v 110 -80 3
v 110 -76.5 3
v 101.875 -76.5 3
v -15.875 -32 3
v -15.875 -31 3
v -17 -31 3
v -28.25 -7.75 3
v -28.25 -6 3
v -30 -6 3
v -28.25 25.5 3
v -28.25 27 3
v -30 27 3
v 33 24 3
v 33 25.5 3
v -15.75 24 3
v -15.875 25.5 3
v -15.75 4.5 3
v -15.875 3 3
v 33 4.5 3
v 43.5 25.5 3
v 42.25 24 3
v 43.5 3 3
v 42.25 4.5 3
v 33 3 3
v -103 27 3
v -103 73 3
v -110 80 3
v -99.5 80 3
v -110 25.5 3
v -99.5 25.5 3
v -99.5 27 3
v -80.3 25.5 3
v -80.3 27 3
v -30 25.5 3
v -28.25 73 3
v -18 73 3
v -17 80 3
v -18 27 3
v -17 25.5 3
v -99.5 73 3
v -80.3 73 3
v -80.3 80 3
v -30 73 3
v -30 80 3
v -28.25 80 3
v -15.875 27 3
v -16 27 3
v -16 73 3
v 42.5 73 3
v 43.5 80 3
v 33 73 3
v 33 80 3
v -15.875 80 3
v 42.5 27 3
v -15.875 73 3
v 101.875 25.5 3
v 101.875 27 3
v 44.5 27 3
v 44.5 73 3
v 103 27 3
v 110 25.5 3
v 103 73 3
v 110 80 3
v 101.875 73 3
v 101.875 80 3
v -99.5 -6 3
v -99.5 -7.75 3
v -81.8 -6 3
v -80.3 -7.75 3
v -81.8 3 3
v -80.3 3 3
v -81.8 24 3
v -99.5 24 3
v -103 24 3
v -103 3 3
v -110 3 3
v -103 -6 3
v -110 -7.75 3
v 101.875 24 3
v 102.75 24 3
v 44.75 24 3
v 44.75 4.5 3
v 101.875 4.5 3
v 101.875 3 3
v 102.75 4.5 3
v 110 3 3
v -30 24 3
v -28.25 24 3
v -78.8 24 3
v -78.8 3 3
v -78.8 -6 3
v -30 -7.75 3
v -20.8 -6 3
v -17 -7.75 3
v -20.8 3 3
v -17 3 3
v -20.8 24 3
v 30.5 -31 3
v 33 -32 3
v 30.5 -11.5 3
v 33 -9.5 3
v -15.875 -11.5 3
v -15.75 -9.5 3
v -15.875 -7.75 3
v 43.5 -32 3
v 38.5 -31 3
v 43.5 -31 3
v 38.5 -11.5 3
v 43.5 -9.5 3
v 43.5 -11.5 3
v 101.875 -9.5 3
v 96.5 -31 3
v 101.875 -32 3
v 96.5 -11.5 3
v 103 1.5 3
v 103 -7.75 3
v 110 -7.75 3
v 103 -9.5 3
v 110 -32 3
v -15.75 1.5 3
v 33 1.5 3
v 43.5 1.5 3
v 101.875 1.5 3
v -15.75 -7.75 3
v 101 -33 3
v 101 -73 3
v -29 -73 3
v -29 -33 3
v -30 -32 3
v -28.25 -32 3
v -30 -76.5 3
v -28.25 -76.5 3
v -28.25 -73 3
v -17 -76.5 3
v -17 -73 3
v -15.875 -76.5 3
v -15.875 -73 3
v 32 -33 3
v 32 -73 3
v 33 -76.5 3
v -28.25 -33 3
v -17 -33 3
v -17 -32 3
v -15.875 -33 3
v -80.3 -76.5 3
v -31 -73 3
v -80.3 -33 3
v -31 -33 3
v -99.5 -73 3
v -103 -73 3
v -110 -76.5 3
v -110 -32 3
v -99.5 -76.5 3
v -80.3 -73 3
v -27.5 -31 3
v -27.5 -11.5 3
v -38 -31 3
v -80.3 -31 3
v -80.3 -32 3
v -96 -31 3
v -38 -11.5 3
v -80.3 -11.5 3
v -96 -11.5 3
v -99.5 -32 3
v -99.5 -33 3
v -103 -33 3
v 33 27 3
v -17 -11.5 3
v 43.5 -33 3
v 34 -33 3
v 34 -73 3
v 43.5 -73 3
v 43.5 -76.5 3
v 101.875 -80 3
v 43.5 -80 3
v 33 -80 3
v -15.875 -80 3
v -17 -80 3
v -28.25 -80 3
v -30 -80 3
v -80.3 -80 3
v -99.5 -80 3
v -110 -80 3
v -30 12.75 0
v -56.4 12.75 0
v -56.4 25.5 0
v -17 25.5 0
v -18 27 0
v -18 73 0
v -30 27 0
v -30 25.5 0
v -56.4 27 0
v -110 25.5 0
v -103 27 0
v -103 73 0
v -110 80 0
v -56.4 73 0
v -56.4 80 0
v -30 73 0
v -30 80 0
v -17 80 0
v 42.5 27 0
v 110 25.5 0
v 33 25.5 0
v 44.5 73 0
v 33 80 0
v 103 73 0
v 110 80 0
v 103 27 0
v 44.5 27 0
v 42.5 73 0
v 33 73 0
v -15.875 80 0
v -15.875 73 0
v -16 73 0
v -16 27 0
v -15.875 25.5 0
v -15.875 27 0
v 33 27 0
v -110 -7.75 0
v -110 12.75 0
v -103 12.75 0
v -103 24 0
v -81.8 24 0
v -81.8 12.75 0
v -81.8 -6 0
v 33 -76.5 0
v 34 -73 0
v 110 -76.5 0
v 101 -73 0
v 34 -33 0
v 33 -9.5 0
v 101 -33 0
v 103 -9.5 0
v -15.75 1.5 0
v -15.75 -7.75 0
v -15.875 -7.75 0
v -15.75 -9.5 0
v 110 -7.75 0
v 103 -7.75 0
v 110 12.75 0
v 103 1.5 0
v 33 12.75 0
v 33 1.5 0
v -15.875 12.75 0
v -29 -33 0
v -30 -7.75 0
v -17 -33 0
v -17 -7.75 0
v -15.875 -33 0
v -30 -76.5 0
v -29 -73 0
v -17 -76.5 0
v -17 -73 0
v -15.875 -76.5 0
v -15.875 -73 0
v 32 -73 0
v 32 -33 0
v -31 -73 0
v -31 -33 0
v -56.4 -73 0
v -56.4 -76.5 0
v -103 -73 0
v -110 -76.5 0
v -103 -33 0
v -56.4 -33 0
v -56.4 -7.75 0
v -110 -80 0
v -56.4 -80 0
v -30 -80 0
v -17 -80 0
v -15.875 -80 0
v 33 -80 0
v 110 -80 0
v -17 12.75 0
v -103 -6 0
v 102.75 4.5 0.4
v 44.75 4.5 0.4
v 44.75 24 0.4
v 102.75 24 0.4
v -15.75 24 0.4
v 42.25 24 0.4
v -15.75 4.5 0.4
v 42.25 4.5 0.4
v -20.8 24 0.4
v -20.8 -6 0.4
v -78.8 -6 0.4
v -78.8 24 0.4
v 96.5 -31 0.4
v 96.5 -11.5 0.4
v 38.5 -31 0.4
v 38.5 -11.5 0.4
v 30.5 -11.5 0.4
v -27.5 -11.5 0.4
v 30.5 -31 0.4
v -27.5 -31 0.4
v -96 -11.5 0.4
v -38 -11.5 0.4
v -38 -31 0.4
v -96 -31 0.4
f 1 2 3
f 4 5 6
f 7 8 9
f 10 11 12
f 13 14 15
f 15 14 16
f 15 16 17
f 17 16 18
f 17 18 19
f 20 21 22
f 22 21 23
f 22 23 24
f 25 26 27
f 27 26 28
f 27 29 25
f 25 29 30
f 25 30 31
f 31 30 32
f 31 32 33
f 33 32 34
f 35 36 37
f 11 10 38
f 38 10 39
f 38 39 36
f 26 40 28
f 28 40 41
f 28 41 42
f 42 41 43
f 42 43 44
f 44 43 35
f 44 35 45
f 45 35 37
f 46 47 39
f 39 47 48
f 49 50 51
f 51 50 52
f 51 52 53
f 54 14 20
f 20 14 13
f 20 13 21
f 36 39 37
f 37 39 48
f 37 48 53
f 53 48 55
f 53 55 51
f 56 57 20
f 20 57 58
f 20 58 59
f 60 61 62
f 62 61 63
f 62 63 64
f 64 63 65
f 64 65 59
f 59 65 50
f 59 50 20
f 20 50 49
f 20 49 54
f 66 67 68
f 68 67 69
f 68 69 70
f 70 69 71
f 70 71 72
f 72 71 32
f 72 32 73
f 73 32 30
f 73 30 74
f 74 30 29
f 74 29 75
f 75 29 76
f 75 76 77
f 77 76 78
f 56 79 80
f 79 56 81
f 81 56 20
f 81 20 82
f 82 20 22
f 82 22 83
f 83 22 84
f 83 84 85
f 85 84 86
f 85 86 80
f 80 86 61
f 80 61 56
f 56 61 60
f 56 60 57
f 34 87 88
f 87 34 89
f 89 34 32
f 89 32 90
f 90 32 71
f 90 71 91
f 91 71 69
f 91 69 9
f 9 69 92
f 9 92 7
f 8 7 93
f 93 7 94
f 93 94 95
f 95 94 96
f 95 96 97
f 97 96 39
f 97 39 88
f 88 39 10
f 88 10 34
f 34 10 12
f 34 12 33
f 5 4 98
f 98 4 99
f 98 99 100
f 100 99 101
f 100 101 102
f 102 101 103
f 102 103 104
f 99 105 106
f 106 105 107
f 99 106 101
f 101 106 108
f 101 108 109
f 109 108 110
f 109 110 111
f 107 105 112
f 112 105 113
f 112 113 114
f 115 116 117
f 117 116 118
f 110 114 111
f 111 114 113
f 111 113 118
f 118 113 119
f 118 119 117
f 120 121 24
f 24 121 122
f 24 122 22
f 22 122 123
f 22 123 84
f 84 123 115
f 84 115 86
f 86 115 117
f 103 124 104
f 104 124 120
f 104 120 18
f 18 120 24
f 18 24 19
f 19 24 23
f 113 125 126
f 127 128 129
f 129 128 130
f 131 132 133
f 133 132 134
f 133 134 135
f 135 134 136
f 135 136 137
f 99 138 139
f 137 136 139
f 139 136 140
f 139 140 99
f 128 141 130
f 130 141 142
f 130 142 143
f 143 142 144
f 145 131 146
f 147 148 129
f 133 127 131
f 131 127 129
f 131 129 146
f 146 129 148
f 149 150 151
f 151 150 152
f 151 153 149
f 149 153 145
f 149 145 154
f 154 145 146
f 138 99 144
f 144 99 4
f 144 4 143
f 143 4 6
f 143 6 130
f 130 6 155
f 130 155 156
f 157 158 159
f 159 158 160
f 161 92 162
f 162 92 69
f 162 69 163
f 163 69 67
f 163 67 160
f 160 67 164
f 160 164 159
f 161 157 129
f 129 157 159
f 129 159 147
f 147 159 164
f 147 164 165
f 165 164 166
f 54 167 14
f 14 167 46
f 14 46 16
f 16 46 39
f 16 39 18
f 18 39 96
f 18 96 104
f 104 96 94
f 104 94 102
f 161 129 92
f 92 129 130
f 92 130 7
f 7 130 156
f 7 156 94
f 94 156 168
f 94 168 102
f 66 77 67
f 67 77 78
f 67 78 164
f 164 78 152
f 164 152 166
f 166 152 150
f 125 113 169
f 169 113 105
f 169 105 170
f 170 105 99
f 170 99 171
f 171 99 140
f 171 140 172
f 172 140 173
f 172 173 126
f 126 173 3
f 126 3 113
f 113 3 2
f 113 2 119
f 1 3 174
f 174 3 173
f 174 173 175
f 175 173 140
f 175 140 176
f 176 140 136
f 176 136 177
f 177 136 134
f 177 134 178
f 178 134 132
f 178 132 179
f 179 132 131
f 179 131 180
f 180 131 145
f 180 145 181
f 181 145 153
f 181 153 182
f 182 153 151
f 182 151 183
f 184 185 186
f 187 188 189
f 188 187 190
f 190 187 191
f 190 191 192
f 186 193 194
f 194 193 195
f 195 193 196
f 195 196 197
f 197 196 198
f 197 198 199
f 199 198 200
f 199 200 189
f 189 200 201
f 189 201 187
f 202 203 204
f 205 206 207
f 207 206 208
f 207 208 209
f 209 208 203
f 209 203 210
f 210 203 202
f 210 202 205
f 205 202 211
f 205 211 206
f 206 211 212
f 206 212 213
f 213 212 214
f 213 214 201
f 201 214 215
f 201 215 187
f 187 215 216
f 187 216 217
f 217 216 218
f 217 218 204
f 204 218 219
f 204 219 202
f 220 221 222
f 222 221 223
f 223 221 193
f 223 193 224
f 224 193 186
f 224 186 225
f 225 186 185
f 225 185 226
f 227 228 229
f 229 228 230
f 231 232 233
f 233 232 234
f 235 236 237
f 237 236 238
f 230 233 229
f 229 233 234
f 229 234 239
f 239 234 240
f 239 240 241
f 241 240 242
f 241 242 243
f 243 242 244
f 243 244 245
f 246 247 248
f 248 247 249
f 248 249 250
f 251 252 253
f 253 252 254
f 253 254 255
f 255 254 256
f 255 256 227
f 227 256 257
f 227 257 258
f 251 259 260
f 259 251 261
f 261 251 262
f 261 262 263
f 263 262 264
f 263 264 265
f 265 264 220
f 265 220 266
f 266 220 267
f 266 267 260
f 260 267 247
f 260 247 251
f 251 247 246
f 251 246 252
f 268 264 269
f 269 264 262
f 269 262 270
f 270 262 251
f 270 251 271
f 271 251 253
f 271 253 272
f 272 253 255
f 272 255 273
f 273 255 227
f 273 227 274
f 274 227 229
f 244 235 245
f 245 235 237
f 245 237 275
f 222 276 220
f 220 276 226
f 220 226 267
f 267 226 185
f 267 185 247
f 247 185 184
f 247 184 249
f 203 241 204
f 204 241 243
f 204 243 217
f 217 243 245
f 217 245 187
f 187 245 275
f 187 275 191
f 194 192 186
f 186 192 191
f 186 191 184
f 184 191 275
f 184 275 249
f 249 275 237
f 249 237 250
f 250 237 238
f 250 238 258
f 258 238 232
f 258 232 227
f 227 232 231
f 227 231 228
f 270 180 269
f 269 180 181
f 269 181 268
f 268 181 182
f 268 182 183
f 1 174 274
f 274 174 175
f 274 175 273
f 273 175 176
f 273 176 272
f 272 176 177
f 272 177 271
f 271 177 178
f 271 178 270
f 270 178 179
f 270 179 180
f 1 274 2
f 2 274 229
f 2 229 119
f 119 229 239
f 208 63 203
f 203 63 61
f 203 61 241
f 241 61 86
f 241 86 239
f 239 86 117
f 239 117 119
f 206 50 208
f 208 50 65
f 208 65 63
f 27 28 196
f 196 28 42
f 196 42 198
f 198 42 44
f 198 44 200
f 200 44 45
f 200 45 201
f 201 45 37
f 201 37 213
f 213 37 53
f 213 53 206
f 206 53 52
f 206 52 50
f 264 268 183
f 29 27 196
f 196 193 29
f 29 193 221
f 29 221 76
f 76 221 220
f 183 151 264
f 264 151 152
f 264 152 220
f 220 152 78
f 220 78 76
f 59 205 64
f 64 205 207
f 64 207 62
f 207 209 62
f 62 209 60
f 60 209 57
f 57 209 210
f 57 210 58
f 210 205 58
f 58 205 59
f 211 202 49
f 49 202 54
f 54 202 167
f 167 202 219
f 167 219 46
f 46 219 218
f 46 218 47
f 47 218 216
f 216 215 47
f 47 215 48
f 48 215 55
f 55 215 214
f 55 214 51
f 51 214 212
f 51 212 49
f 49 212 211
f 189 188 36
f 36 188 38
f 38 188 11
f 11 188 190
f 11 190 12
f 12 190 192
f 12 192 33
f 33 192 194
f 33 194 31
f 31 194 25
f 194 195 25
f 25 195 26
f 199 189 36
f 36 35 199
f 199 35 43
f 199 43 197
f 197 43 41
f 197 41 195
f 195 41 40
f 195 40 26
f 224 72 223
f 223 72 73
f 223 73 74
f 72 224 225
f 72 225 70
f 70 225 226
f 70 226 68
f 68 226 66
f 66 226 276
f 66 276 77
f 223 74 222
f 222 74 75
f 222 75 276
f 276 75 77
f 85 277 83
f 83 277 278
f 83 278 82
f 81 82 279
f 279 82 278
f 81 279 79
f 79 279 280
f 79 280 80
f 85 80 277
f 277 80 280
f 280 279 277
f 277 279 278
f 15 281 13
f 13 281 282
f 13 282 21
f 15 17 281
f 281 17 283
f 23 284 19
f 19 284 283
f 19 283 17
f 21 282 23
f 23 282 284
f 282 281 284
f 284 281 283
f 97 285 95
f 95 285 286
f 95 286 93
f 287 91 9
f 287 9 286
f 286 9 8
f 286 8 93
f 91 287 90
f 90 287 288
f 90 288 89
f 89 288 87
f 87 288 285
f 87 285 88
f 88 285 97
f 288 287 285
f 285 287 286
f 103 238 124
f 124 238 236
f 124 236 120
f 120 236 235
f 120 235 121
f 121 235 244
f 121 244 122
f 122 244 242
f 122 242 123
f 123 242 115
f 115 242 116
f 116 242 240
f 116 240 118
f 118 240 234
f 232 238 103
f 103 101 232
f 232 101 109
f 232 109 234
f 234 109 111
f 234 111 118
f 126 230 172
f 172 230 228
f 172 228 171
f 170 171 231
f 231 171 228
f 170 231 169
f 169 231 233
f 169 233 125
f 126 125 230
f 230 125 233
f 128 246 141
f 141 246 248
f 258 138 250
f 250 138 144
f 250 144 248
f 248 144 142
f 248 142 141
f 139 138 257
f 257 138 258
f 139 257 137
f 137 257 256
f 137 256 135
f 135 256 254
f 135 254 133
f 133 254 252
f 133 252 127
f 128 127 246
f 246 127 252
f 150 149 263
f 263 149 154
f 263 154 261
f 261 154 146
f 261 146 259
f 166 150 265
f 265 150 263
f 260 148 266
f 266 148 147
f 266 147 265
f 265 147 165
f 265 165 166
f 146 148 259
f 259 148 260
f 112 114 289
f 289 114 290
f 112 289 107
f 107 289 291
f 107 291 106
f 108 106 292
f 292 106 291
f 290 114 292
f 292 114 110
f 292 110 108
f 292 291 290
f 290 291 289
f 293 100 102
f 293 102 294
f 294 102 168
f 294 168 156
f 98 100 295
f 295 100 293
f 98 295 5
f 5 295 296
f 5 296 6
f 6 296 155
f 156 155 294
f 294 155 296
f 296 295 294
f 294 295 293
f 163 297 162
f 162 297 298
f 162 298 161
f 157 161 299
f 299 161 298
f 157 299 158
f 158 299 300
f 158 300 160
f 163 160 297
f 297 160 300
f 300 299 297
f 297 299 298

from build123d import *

# Parameters (mm, degrees)
SKETCH_1_W          = 220
SKETCH_1_H          = 160
EXTRUDE_1_DEPTH     = 3
SKETCH_2_W          = 85
SKETCH_2_H          = 46
SKETCH_2_W_2        = 58.5
CUT_EXTRUDE_1_DEPTH = 137.047785723
CUT_EXTRUDE_2_REACH = 138.048
SKETCH_3_W          = 21.2
SKETCH_3_H          = 30
SKETCH_4_W          = 58
SKETCH_4_H          = 30
SKETCH_4_H_2        = 19.5
CUT_EXTRUDE_3_DEPTH = 2.6
SKETCH_6_W          = 118.75
SKETCH_6_H          = 11
CUT_EXTRUDE_4_DEPTH = 137.047785723
CUT_EXTRUDE_5_REACH = 138.048
SKETCH_7_W          = 72
SKETCH_7_H          = 40
SKETCH_7_W_2        = 61
SKETCH_7_W_3        = 67
SKETCH_8_W          = 58
SKETCH_8_H          = 19.5
CUT_EXTRUDE_6_DEPTH = 2.6


with BuildPart() as part:
    # 草图1 → 凸台-拉伸1 (new body)
    with BuildSketch(Plane.XY):
        Rectangle(SKETCH_1_W, SKETCH_1_H)
    extrude(amount=EXTRUDE_1_DEPTH)

    # 草图2 → 切除-拉伸1 (cut, through all)
    with BuildSketch(Plane.XY.offset(3)):
        with Locations((-60.5, 50)):
            Rectangle(SKETCH_2_W, SKETCH_2_H)
        with Locations((13.25, 50)):
            Rectangle(SKETCH_2_W_2, SKETCH_2_H)
        with Locations((73.75, 50)):
            Rectangle(SKETCH_2_W_2, SKETCH_2_H)
    extrude(amount=-CUT_EXTRUDE_1_DEPTH, mode=Mode.SUBTRACT)

    # 草图3 → 切除-拉伸2 (cut, up to next)
    with BuildSketch(Plane.XY.offset(3), mode=Mode.PRIVATE) as cut_extrude_2_sk1:
        with Locations((-92.4, 9)):
            Rectangle(SKETCH_3_W, SKETCH_3_H)
    cut_extrude_2_tool1 = extrude(cut_extrude_2_sk1.sketch, amount=-CUT_EXTRUDE_2_REACH, mode=Mode.PRIVATE) & part.part
    add(cut_extrude_2_tool1.solids().sort_by_distance((-92.4, 9, 3))[0], mode=Mode.SUBTRACT)

    # 草图4 → 切除-拉伸3 (cut)
    with BuildSketch(Plane.XY.offset(3)):
        with Locations((-49.8, 9)):
            Rectangle(SKETCH_4_W, SKETCH_4_H)
        with Locations((13.25, 14.25)):
            Rectangle(SKETCH_4_W, SKETCH_4_H_2)
        with Locations((73.75, 14.25)):
            Rectangle(SKETCH_4_W, SKETCH_4_H_2)
    extrude(amount=-CUT_EXTRUDE_3_DEPTH, mode=Mode.SUBTRACT)

    # 草图6 → 切除-拉伸4 (cut, through all)
    with BuildSketch(Plane.XY.offset(3)):
        with Locations((43.625, -4)):
            Rectangle(SKETCH_6_W, SKETCH_6_H)
    extrude(amount=-CUT_EXTRUDE_4_DEPTH, mode=Mode.SUBTRACT)

    # 草图7 → 切除-拉伸5 (cut, up to next)
    with BuildSketch(Plane.XY.offset(3), mode=Mode.PRIVATE) as cut_extrude_5_sk1:
        with Locations((-67, -53)):
            Rectangle(SKETCH_7_W, SKETCH_7_H)
    cut_extrude_5_tool1 = extrude(cut_extrude_5_sk1.sketch, amount=-CUT_EXTRUDE_5_REACH, mode=Mode.PRIVATE) & part.part
    # 草图7 → 切除-拉伸5 (cut, up to next)
    with BuildSketch(Plane.XY.offset(3), mode=Mode.PRIVATE) as cut_extrude_5_sk2:
        with Locations((1.5, -53)):
            Rectangle(SKETCH_7_W_2, SKETCH_7_H)
    cut_extrude_5_tool2 = extrude(cut_extrude_5_sk2.sketch, amount=-CUT_EXTRUDE_5_REACH, mode=Mode.PRIVATE) & part.part
    # 草图7 → 切除-拉伸5 (cut, up to next)
    with BuildSketch(Plane.XY.offset(3), mode=Mode.PRIVATE) as cut_extrude_5_sk3:
        with Locations((67.5, -53)):
            Rectangle(SKETCH_7_W_3, SKETCH_7_H)
    cut_extrude_5_tool3 = extrude(cut_extrude_5_sk3.sketch, amount=-CUT_EXTRUDE_5_REACH, mode=Mode.PRIVATE) & part.part
    add(cut_extrude_5_tool1.solids().sort_by_distance((-67, -53, 3))[0], mode=Mode.SUBTRACT)
    add(cut_extrude_5_tool2.solids().sort_by_distance((1.5, -53, 3))[0], mode=Mode.SUBTRACT)
    add(cut_extrude_5_tool3.solids().sort_by_distance((67.5, -53, 3))[0], mode=Mode.SUBTRACT)

    # 草图8 → 切除-拉伸6 (cut)
    with BuildSketch(Plane.XY.offset(3)):
        with Locations((-67, -21.25)):
            Rectangle(SKETCH_8_W, SKETCH_8_H)
        with Locations((1.5, -21.25)):
            Rectangle(SKETCH_8_W, SKETCH_8_H)
        with Locations((67.5, -21.25)):
            Rectangle(SKETCH_8_W, SKETCH_8_H)
    extrude(amount=-CUT_EXTRUDE_6_DEPTH, mode=Mode.SUBTRACT)


solid = part.part
